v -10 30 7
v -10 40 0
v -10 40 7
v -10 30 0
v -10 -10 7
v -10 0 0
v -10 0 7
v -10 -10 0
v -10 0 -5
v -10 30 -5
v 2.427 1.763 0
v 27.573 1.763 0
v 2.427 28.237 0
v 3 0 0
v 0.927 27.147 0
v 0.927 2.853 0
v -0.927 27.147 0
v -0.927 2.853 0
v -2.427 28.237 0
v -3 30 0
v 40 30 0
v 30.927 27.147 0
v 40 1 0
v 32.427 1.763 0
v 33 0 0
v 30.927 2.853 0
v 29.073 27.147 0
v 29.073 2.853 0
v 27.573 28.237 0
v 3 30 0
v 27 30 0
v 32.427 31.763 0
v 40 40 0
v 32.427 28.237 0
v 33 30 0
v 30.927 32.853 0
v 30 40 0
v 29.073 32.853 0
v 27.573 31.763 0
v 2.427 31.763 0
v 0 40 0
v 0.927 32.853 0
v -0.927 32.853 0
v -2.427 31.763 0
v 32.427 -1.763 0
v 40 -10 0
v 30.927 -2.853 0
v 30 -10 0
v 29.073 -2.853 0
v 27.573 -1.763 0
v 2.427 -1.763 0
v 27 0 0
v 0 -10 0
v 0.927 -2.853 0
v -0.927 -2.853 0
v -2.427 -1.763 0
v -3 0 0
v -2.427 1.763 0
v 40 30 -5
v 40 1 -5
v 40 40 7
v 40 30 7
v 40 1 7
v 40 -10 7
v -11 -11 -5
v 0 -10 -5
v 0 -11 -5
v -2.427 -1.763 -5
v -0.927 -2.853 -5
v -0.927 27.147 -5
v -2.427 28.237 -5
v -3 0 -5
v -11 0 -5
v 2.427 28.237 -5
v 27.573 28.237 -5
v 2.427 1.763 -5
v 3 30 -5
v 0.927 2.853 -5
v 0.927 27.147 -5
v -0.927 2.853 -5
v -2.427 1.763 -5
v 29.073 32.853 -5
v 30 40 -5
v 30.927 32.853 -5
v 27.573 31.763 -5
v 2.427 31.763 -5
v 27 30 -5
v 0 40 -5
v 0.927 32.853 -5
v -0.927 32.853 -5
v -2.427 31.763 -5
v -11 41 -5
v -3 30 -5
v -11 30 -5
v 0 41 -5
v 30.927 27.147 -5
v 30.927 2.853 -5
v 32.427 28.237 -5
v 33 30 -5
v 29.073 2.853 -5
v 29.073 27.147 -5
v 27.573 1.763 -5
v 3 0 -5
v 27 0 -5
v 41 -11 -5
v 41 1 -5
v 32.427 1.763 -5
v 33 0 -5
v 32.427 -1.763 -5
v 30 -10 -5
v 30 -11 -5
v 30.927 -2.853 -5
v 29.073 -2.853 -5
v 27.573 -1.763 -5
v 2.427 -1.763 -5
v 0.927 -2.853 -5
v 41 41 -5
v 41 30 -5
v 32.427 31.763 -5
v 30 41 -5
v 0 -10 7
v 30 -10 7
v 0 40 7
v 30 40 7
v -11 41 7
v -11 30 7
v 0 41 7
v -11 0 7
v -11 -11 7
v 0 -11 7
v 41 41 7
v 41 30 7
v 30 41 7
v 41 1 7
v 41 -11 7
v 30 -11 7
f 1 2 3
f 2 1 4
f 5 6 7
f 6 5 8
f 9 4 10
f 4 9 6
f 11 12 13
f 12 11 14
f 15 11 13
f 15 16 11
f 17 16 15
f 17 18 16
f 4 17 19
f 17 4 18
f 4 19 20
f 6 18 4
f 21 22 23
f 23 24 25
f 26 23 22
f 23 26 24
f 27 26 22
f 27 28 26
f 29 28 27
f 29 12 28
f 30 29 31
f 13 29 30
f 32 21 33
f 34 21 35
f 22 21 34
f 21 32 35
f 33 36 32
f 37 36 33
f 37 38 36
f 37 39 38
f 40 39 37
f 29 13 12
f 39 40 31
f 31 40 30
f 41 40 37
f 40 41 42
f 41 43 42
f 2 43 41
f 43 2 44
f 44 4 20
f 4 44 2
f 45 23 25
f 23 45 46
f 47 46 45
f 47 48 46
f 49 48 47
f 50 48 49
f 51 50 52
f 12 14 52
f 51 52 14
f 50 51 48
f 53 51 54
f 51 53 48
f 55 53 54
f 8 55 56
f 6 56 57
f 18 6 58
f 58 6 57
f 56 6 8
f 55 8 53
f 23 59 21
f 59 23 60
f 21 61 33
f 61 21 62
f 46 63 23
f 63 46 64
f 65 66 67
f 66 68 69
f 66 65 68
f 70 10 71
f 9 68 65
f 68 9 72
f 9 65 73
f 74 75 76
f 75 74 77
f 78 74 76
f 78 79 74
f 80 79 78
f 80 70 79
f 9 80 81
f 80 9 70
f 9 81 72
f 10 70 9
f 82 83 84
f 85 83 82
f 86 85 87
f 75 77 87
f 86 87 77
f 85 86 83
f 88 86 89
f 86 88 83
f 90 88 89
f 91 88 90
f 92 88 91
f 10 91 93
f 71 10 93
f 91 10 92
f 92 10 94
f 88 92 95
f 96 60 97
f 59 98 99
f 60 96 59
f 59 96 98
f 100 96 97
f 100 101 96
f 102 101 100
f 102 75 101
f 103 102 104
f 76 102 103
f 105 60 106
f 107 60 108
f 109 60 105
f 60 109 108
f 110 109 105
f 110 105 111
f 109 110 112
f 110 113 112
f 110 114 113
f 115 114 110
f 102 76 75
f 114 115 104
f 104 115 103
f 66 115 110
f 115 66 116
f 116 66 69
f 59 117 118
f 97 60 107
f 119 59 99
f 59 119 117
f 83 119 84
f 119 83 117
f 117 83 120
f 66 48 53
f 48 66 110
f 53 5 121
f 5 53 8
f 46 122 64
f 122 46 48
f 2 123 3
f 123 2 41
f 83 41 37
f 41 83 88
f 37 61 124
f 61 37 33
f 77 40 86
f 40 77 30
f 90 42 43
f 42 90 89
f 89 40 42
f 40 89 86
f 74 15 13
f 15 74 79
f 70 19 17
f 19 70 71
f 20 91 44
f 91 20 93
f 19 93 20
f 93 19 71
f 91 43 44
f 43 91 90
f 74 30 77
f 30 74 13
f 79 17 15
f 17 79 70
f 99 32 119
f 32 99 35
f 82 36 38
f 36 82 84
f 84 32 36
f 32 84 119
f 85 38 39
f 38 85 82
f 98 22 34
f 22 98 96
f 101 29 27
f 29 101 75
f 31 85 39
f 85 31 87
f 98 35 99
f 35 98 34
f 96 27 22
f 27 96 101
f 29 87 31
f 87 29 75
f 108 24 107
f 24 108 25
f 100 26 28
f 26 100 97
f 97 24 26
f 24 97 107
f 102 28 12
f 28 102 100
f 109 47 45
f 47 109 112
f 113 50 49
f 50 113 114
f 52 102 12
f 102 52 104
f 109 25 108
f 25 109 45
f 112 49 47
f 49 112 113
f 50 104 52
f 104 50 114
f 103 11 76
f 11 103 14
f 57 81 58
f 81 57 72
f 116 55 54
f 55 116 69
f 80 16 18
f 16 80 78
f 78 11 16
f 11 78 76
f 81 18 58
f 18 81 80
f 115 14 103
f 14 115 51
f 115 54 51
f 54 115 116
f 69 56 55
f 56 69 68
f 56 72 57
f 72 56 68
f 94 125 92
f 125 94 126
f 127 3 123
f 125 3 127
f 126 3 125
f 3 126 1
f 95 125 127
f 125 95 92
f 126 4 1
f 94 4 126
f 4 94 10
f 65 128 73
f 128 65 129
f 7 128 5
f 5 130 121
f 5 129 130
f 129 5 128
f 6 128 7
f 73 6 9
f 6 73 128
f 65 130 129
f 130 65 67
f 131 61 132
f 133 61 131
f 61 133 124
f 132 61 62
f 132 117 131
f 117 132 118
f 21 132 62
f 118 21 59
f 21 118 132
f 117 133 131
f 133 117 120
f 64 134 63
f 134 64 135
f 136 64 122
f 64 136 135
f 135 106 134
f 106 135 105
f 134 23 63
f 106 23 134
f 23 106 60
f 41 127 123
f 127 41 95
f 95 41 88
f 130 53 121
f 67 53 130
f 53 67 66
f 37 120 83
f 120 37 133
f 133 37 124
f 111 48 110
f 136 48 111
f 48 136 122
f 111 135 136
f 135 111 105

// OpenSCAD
difference(){
translate([-10,-10,-5])
    cube([50,50,5]);
#translate([0,30,-5])cylinder(h=5, r1=3,r2=3);
#translate([30,30,-5])cylinder(h=5, r1=3,r2=3);
#translate([30,0,-5])cylinder(h=5, r1=3,r2=3);
#translate([0,0,-5])cylinder(h=5, r1=3,r2=3);
}
translate([-11,30,-5])
    cube([1,11,12]);
translate([-11,-11,-5])
    cube([1,11,12]);
translate([40,30,-5])
    cube([1,11,12]);
translate([40,-10,-5])
    cube([1,11,12]);
translate([-10,40,-5])
    cube([10,1,12]);
translate([-10,-11,-5])
    cube([10,1,12]);
translate([30,40,-5])
    cube([11,1,12]);
translate([30,-11,-5])
    cube([11,1,12]);
